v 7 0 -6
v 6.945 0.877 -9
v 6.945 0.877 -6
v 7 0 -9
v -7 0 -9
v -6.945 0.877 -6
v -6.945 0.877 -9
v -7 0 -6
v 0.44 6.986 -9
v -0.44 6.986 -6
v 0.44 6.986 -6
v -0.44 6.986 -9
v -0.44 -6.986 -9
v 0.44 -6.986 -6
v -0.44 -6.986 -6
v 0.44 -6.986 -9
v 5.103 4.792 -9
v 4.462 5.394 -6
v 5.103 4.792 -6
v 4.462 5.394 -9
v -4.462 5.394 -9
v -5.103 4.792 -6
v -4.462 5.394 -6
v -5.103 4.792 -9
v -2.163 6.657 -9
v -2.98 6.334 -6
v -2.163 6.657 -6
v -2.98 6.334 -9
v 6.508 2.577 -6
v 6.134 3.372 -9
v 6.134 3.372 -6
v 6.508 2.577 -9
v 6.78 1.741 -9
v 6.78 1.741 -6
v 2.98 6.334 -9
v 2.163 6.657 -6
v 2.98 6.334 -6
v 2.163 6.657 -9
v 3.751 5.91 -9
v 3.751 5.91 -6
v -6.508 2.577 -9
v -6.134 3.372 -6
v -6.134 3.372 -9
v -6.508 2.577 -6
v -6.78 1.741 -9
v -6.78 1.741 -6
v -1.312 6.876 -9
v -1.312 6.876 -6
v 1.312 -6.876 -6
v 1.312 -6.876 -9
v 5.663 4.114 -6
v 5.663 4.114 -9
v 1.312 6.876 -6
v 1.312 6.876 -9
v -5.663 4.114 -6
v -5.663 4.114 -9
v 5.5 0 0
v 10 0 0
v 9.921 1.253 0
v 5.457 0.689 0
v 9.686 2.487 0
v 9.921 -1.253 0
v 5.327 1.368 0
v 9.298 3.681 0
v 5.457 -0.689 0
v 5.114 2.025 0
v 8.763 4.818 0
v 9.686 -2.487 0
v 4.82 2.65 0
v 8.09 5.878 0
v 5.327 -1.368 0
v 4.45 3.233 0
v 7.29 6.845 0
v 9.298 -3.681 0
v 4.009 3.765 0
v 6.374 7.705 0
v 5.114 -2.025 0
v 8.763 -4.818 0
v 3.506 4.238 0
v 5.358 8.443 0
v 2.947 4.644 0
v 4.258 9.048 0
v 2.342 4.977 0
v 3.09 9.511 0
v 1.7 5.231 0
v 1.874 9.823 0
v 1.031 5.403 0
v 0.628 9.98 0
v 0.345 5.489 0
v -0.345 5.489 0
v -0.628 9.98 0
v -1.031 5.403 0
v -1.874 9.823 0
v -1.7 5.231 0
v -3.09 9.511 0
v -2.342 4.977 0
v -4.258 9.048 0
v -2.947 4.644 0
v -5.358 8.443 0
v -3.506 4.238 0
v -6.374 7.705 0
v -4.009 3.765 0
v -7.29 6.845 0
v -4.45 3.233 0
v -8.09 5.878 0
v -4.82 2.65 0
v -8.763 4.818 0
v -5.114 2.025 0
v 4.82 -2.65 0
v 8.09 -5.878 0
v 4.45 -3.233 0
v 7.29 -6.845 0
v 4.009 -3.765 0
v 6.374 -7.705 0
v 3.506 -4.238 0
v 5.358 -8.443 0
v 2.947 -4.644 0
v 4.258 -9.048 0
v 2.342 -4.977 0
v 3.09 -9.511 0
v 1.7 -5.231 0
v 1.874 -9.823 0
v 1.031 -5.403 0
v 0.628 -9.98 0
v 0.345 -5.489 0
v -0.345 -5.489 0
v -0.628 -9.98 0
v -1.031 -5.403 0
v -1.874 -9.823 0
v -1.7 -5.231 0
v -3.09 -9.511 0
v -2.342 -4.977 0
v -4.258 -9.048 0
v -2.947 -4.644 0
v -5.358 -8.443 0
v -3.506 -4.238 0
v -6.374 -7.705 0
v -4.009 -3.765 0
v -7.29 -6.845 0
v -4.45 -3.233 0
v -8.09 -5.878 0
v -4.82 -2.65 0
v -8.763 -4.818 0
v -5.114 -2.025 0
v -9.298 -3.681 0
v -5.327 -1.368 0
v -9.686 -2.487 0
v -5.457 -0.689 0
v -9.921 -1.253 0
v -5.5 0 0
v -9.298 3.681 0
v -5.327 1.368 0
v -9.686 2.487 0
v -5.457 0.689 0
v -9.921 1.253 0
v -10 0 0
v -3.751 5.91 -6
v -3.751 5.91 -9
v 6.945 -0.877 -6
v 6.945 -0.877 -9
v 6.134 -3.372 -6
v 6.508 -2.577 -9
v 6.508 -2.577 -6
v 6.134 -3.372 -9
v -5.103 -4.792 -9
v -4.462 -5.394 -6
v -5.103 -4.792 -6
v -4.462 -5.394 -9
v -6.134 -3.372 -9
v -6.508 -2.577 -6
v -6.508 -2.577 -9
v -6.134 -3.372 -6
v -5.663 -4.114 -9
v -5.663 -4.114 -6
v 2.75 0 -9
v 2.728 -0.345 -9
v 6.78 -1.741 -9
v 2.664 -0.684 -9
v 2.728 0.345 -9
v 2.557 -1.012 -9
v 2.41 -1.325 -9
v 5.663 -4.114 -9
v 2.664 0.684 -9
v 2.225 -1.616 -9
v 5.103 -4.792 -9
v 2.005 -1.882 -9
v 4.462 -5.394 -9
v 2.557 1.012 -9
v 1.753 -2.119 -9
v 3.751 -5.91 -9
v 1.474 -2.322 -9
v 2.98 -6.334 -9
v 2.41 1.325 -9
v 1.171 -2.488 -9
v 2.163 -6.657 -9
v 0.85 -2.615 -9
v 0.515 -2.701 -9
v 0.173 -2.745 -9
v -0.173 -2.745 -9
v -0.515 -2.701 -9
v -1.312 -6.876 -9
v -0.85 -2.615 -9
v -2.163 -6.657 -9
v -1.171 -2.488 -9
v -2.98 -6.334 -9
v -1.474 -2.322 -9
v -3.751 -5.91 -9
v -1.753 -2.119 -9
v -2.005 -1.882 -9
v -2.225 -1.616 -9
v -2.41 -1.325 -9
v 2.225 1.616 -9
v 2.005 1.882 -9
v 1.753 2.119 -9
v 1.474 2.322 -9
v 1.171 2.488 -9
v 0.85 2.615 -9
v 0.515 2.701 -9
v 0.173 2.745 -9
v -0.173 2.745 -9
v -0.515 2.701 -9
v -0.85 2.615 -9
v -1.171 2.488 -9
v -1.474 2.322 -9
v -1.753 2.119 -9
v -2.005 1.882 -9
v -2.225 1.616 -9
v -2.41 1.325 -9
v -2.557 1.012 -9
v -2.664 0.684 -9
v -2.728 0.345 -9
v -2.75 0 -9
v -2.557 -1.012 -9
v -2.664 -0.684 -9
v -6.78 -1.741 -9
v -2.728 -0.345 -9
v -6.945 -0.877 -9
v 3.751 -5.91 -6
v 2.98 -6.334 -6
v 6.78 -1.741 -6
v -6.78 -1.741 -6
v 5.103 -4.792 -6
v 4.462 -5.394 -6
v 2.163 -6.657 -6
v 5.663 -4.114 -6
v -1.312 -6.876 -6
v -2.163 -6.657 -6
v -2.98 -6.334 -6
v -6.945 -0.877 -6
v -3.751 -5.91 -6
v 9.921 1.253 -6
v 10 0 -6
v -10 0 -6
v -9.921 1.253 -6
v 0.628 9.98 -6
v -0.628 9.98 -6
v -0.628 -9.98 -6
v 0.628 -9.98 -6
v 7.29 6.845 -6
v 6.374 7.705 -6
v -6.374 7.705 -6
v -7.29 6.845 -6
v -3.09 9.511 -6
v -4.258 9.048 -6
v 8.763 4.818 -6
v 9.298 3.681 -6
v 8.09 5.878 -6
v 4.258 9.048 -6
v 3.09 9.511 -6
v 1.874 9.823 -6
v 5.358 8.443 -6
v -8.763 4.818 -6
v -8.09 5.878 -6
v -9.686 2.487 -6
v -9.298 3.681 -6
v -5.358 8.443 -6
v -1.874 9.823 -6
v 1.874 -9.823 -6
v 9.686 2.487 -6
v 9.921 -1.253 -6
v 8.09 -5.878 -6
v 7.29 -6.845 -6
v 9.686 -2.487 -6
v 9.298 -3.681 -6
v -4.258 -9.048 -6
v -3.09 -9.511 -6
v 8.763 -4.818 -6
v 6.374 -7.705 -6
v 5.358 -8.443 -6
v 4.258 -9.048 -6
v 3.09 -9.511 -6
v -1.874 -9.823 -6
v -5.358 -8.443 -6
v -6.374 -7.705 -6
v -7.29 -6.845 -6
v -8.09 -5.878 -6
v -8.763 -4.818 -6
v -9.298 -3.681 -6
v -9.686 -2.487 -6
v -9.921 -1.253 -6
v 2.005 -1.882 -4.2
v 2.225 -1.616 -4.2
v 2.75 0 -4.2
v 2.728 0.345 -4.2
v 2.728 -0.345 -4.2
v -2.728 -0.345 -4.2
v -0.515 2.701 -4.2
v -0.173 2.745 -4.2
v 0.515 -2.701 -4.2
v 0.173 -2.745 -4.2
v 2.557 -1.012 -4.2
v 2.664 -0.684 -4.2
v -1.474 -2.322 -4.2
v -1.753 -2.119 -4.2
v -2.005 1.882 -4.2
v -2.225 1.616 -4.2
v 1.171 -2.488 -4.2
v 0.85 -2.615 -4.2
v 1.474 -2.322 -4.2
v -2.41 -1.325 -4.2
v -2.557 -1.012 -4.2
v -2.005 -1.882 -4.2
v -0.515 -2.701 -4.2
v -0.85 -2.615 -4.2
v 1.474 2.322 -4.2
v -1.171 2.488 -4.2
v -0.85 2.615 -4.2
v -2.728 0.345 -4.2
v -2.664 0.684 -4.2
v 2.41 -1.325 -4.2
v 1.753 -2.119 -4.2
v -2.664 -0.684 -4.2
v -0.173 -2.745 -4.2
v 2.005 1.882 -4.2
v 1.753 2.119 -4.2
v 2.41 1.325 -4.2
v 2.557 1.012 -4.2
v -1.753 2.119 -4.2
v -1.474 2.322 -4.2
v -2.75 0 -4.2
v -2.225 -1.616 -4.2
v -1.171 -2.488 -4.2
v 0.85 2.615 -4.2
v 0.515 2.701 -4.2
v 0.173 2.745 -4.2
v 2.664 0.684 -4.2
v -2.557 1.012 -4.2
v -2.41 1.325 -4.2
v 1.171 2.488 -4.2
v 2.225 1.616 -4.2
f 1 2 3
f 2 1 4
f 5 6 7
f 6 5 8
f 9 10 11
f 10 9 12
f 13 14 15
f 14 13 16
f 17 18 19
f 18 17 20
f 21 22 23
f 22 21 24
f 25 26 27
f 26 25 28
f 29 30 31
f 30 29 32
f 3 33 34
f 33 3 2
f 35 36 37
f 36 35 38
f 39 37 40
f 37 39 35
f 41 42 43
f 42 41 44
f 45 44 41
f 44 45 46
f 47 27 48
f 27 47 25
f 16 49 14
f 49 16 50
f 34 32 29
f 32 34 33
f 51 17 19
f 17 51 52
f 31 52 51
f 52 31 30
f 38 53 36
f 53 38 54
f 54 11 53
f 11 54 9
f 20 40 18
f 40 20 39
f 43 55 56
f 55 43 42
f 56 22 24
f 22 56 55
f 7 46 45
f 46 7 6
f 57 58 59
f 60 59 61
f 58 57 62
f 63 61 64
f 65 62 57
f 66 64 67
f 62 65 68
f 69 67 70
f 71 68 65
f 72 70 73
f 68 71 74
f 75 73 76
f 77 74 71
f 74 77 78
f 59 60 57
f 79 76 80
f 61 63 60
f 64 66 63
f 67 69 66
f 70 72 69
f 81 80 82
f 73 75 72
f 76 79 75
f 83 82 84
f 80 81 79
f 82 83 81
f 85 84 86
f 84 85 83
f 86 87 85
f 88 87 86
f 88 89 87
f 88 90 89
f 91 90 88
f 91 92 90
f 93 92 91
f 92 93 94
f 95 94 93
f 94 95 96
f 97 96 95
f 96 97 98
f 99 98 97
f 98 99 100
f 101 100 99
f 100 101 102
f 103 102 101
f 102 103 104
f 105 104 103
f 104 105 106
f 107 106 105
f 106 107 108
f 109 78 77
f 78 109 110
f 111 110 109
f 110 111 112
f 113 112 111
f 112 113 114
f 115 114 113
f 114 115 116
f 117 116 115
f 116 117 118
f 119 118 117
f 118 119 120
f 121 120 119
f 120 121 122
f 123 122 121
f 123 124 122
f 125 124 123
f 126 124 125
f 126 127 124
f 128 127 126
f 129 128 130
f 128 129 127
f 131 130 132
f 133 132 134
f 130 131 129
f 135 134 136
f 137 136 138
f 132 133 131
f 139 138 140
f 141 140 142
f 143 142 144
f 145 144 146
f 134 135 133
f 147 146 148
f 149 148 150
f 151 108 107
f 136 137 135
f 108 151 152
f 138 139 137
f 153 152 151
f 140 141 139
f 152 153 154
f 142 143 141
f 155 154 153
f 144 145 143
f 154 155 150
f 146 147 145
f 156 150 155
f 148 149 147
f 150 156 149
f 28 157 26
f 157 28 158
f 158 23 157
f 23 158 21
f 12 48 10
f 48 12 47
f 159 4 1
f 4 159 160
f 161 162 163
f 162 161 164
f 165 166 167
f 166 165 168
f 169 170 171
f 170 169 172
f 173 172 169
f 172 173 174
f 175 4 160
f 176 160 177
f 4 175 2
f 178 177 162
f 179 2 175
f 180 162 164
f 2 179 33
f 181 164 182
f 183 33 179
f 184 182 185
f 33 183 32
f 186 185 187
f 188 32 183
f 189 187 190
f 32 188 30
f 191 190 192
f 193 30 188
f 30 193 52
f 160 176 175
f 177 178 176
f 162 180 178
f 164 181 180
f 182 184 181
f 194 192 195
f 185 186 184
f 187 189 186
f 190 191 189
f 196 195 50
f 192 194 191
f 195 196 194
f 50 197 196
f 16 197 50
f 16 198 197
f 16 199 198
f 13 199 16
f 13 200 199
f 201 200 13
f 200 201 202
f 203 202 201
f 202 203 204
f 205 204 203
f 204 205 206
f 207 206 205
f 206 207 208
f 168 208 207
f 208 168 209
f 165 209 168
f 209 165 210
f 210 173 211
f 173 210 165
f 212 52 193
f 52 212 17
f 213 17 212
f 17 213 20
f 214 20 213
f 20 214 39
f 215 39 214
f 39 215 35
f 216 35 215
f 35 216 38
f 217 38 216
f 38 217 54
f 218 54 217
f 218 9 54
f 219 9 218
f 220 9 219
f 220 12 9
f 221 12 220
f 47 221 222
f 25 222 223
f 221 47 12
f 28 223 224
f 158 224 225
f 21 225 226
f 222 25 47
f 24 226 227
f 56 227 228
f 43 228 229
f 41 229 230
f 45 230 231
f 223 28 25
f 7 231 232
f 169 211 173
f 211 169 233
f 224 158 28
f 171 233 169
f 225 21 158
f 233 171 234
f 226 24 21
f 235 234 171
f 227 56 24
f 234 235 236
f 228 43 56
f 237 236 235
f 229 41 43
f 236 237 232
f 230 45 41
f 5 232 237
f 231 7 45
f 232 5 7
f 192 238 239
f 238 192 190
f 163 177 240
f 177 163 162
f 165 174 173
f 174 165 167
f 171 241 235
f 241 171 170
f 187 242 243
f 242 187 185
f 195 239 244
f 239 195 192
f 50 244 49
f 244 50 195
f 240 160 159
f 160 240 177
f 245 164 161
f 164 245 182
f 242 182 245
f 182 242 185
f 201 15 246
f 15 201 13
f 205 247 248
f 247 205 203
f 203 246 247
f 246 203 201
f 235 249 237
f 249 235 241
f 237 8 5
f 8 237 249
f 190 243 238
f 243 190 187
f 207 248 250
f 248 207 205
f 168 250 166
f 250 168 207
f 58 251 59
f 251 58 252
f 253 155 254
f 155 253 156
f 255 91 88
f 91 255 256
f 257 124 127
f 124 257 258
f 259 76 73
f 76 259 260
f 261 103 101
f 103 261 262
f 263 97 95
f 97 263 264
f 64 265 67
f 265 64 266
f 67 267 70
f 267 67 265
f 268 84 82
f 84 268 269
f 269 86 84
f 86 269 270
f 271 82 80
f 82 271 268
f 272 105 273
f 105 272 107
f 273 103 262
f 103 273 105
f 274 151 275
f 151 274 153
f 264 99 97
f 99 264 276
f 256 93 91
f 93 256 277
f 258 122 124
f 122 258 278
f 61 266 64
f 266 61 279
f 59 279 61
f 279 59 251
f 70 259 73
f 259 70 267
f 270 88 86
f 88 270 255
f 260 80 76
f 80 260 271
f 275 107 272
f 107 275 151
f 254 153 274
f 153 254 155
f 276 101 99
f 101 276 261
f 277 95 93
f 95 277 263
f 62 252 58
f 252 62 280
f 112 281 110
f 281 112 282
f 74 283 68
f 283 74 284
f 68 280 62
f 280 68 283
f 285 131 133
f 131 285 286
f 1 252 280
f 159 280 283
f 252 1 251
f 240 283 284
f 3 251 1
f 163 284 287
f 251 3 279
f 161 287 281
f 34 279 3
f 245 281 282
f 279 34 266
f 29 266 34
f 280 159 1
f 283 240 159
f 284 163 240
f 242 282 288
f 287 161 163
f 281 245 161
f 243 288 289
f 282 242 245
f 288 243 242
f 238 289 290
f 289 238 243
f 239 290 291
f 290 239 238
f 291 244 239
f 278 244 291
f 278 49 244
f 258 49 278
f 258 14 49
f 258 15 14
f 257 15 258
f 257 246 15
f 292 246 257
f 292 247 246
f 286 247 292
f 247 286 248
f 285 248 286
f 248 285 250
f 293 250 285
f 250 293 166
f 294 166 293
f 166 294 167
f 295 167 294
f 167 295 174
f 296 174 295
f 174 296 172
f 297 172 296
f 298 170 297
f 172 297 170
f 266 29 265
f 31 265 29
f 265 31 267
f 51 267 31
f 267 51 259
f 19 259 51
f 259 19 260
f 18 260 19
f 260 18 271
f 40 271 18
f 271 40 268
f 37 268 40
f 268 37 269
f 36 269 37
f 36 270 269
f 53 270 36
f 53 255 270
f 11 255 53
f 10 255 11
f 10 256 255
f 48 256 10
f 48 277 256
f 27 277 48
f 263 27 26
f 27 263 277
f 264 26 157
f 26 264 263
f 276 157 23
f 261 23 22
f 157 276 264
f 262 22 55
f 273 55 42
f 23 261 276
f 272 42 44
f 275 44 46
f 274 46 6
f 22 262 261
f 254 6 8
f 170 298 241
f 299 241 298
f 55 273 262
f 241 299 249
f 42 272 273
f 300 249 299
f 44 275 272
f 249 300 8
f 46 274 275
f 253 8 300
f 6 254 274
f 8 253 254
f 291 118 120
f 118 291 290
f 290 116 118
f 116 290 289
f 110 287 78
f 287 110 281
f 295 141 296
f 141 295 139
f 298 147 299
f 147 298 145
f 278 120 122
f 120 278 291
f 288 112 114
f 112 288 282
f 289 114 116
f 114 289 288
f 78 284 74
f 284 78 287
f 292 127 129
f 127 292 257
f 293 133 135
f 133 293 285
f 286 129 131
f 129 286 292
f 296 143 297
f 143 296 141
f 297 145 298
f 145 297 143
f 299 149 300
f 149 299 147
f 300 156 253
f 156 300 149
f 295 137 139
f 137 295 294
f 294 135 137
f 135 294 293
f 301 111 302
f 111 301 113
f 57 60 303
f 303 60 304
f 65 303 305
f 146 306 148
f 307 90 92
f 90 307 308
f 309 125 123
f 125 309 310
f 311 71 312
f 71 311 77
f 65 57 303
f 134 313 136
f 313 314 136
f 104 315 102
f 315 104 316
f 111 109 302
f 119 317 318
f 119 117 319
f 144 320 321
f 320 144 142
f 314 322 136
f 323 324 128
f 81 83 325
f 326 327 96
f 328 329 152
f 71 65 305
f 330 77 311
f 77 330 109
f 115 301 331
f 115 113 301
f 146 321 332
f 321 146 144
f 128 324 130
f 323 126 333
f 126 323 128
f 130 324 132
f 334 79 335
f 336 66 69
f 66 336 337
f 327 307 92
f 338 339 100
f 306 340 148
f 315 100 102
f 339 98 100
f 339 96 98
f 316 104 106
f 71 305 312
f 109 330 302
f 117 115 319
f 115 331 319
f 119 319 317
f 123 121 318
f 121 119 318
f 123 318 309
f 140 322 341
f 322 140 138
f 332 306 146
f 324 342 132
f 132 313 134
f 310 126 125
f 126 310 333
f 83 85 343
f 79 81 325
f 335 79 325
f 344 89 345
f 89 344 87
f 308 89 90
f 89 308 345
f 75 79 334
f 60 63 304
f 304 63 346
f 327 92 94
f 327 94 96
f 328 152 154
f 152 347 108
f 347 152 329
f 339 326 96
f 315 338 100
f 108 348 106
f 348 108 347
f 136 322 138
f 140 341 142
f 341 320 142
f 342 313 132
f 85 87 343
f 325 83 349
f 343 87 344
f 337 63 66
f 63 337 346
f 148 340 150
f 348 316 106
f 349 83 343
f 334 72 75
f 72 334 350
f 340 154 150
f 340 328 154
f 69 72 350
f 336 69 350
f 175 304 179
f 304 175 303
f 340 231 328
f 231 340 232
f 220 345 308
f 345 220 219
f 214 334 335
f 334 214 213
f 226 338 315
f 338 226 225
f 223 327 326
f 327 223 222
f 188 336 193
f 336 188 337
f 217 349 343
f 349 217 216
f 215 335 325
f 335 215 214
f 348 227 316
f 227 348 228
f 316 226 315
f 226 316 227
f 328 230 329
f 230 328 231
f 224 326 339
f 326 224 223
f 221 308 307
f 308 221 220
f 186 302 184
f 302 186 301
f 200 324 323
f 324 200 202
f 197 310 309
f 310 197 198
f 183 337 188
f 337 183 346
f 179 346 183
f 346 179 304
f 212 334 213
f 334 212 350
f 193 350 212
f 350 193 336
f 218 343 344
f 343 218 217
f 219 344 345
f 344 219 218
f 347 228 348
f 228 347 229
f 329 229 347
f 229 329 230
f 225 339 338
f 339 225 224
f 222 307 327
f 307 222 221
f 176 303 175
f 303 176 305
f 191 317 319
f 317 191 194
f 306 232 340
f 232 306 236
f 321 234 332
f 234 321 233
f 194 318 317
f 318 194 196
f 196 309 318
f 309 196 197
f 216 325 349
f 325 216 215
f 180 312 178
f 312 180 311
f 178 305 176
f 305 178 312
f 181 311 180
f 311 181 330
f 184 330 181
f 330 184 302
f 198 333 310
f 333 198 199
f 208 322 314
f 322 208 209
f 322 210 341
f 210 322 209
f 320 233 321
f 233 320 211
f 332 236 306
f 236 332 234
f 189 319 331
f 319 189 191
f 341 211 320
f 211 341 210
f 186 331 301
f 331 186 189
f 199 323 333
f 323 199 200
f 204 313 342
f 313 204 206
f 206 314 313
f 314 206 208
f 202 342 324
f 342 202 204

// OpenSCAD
$fn = 50;


difference() {
	union() {
		translate(v = [0, 0, -9.0000000000]) {
			cylinder(h = 9, r = 7.0000000000);
		}
		translate(v = [0, 0, -6.0000000000]) {
			cylinder(h = 6, r = 10.0000000000);
		}
	}
	union() {
		translate(v = [0, 0, 0]) {
			rotate(a = [0, 0, 0]) {
				difference() {
					union() {
						#translate(v = [0, 0, -9.0000000000]) {
							cylinder(h = 9, r = 2.2500000000);
						}
						#translate(v = [0, 0, -4.2000000000]) {
							cylinder(h = 4.2000000000, r1 = 2.7500000000, r2 = 5.5000000000);
						}
						#translate(v = [0, 0, -9.0000000000]) {
							cylinder(h = 9, r = 2.7500000000);
						}
						#translate(v = [0, 0, -9.0000000000]) {
							cylinder(h = 9, r = 2.2500000000);
						}
					}
					union();
				}
			}
		}
	}
}
